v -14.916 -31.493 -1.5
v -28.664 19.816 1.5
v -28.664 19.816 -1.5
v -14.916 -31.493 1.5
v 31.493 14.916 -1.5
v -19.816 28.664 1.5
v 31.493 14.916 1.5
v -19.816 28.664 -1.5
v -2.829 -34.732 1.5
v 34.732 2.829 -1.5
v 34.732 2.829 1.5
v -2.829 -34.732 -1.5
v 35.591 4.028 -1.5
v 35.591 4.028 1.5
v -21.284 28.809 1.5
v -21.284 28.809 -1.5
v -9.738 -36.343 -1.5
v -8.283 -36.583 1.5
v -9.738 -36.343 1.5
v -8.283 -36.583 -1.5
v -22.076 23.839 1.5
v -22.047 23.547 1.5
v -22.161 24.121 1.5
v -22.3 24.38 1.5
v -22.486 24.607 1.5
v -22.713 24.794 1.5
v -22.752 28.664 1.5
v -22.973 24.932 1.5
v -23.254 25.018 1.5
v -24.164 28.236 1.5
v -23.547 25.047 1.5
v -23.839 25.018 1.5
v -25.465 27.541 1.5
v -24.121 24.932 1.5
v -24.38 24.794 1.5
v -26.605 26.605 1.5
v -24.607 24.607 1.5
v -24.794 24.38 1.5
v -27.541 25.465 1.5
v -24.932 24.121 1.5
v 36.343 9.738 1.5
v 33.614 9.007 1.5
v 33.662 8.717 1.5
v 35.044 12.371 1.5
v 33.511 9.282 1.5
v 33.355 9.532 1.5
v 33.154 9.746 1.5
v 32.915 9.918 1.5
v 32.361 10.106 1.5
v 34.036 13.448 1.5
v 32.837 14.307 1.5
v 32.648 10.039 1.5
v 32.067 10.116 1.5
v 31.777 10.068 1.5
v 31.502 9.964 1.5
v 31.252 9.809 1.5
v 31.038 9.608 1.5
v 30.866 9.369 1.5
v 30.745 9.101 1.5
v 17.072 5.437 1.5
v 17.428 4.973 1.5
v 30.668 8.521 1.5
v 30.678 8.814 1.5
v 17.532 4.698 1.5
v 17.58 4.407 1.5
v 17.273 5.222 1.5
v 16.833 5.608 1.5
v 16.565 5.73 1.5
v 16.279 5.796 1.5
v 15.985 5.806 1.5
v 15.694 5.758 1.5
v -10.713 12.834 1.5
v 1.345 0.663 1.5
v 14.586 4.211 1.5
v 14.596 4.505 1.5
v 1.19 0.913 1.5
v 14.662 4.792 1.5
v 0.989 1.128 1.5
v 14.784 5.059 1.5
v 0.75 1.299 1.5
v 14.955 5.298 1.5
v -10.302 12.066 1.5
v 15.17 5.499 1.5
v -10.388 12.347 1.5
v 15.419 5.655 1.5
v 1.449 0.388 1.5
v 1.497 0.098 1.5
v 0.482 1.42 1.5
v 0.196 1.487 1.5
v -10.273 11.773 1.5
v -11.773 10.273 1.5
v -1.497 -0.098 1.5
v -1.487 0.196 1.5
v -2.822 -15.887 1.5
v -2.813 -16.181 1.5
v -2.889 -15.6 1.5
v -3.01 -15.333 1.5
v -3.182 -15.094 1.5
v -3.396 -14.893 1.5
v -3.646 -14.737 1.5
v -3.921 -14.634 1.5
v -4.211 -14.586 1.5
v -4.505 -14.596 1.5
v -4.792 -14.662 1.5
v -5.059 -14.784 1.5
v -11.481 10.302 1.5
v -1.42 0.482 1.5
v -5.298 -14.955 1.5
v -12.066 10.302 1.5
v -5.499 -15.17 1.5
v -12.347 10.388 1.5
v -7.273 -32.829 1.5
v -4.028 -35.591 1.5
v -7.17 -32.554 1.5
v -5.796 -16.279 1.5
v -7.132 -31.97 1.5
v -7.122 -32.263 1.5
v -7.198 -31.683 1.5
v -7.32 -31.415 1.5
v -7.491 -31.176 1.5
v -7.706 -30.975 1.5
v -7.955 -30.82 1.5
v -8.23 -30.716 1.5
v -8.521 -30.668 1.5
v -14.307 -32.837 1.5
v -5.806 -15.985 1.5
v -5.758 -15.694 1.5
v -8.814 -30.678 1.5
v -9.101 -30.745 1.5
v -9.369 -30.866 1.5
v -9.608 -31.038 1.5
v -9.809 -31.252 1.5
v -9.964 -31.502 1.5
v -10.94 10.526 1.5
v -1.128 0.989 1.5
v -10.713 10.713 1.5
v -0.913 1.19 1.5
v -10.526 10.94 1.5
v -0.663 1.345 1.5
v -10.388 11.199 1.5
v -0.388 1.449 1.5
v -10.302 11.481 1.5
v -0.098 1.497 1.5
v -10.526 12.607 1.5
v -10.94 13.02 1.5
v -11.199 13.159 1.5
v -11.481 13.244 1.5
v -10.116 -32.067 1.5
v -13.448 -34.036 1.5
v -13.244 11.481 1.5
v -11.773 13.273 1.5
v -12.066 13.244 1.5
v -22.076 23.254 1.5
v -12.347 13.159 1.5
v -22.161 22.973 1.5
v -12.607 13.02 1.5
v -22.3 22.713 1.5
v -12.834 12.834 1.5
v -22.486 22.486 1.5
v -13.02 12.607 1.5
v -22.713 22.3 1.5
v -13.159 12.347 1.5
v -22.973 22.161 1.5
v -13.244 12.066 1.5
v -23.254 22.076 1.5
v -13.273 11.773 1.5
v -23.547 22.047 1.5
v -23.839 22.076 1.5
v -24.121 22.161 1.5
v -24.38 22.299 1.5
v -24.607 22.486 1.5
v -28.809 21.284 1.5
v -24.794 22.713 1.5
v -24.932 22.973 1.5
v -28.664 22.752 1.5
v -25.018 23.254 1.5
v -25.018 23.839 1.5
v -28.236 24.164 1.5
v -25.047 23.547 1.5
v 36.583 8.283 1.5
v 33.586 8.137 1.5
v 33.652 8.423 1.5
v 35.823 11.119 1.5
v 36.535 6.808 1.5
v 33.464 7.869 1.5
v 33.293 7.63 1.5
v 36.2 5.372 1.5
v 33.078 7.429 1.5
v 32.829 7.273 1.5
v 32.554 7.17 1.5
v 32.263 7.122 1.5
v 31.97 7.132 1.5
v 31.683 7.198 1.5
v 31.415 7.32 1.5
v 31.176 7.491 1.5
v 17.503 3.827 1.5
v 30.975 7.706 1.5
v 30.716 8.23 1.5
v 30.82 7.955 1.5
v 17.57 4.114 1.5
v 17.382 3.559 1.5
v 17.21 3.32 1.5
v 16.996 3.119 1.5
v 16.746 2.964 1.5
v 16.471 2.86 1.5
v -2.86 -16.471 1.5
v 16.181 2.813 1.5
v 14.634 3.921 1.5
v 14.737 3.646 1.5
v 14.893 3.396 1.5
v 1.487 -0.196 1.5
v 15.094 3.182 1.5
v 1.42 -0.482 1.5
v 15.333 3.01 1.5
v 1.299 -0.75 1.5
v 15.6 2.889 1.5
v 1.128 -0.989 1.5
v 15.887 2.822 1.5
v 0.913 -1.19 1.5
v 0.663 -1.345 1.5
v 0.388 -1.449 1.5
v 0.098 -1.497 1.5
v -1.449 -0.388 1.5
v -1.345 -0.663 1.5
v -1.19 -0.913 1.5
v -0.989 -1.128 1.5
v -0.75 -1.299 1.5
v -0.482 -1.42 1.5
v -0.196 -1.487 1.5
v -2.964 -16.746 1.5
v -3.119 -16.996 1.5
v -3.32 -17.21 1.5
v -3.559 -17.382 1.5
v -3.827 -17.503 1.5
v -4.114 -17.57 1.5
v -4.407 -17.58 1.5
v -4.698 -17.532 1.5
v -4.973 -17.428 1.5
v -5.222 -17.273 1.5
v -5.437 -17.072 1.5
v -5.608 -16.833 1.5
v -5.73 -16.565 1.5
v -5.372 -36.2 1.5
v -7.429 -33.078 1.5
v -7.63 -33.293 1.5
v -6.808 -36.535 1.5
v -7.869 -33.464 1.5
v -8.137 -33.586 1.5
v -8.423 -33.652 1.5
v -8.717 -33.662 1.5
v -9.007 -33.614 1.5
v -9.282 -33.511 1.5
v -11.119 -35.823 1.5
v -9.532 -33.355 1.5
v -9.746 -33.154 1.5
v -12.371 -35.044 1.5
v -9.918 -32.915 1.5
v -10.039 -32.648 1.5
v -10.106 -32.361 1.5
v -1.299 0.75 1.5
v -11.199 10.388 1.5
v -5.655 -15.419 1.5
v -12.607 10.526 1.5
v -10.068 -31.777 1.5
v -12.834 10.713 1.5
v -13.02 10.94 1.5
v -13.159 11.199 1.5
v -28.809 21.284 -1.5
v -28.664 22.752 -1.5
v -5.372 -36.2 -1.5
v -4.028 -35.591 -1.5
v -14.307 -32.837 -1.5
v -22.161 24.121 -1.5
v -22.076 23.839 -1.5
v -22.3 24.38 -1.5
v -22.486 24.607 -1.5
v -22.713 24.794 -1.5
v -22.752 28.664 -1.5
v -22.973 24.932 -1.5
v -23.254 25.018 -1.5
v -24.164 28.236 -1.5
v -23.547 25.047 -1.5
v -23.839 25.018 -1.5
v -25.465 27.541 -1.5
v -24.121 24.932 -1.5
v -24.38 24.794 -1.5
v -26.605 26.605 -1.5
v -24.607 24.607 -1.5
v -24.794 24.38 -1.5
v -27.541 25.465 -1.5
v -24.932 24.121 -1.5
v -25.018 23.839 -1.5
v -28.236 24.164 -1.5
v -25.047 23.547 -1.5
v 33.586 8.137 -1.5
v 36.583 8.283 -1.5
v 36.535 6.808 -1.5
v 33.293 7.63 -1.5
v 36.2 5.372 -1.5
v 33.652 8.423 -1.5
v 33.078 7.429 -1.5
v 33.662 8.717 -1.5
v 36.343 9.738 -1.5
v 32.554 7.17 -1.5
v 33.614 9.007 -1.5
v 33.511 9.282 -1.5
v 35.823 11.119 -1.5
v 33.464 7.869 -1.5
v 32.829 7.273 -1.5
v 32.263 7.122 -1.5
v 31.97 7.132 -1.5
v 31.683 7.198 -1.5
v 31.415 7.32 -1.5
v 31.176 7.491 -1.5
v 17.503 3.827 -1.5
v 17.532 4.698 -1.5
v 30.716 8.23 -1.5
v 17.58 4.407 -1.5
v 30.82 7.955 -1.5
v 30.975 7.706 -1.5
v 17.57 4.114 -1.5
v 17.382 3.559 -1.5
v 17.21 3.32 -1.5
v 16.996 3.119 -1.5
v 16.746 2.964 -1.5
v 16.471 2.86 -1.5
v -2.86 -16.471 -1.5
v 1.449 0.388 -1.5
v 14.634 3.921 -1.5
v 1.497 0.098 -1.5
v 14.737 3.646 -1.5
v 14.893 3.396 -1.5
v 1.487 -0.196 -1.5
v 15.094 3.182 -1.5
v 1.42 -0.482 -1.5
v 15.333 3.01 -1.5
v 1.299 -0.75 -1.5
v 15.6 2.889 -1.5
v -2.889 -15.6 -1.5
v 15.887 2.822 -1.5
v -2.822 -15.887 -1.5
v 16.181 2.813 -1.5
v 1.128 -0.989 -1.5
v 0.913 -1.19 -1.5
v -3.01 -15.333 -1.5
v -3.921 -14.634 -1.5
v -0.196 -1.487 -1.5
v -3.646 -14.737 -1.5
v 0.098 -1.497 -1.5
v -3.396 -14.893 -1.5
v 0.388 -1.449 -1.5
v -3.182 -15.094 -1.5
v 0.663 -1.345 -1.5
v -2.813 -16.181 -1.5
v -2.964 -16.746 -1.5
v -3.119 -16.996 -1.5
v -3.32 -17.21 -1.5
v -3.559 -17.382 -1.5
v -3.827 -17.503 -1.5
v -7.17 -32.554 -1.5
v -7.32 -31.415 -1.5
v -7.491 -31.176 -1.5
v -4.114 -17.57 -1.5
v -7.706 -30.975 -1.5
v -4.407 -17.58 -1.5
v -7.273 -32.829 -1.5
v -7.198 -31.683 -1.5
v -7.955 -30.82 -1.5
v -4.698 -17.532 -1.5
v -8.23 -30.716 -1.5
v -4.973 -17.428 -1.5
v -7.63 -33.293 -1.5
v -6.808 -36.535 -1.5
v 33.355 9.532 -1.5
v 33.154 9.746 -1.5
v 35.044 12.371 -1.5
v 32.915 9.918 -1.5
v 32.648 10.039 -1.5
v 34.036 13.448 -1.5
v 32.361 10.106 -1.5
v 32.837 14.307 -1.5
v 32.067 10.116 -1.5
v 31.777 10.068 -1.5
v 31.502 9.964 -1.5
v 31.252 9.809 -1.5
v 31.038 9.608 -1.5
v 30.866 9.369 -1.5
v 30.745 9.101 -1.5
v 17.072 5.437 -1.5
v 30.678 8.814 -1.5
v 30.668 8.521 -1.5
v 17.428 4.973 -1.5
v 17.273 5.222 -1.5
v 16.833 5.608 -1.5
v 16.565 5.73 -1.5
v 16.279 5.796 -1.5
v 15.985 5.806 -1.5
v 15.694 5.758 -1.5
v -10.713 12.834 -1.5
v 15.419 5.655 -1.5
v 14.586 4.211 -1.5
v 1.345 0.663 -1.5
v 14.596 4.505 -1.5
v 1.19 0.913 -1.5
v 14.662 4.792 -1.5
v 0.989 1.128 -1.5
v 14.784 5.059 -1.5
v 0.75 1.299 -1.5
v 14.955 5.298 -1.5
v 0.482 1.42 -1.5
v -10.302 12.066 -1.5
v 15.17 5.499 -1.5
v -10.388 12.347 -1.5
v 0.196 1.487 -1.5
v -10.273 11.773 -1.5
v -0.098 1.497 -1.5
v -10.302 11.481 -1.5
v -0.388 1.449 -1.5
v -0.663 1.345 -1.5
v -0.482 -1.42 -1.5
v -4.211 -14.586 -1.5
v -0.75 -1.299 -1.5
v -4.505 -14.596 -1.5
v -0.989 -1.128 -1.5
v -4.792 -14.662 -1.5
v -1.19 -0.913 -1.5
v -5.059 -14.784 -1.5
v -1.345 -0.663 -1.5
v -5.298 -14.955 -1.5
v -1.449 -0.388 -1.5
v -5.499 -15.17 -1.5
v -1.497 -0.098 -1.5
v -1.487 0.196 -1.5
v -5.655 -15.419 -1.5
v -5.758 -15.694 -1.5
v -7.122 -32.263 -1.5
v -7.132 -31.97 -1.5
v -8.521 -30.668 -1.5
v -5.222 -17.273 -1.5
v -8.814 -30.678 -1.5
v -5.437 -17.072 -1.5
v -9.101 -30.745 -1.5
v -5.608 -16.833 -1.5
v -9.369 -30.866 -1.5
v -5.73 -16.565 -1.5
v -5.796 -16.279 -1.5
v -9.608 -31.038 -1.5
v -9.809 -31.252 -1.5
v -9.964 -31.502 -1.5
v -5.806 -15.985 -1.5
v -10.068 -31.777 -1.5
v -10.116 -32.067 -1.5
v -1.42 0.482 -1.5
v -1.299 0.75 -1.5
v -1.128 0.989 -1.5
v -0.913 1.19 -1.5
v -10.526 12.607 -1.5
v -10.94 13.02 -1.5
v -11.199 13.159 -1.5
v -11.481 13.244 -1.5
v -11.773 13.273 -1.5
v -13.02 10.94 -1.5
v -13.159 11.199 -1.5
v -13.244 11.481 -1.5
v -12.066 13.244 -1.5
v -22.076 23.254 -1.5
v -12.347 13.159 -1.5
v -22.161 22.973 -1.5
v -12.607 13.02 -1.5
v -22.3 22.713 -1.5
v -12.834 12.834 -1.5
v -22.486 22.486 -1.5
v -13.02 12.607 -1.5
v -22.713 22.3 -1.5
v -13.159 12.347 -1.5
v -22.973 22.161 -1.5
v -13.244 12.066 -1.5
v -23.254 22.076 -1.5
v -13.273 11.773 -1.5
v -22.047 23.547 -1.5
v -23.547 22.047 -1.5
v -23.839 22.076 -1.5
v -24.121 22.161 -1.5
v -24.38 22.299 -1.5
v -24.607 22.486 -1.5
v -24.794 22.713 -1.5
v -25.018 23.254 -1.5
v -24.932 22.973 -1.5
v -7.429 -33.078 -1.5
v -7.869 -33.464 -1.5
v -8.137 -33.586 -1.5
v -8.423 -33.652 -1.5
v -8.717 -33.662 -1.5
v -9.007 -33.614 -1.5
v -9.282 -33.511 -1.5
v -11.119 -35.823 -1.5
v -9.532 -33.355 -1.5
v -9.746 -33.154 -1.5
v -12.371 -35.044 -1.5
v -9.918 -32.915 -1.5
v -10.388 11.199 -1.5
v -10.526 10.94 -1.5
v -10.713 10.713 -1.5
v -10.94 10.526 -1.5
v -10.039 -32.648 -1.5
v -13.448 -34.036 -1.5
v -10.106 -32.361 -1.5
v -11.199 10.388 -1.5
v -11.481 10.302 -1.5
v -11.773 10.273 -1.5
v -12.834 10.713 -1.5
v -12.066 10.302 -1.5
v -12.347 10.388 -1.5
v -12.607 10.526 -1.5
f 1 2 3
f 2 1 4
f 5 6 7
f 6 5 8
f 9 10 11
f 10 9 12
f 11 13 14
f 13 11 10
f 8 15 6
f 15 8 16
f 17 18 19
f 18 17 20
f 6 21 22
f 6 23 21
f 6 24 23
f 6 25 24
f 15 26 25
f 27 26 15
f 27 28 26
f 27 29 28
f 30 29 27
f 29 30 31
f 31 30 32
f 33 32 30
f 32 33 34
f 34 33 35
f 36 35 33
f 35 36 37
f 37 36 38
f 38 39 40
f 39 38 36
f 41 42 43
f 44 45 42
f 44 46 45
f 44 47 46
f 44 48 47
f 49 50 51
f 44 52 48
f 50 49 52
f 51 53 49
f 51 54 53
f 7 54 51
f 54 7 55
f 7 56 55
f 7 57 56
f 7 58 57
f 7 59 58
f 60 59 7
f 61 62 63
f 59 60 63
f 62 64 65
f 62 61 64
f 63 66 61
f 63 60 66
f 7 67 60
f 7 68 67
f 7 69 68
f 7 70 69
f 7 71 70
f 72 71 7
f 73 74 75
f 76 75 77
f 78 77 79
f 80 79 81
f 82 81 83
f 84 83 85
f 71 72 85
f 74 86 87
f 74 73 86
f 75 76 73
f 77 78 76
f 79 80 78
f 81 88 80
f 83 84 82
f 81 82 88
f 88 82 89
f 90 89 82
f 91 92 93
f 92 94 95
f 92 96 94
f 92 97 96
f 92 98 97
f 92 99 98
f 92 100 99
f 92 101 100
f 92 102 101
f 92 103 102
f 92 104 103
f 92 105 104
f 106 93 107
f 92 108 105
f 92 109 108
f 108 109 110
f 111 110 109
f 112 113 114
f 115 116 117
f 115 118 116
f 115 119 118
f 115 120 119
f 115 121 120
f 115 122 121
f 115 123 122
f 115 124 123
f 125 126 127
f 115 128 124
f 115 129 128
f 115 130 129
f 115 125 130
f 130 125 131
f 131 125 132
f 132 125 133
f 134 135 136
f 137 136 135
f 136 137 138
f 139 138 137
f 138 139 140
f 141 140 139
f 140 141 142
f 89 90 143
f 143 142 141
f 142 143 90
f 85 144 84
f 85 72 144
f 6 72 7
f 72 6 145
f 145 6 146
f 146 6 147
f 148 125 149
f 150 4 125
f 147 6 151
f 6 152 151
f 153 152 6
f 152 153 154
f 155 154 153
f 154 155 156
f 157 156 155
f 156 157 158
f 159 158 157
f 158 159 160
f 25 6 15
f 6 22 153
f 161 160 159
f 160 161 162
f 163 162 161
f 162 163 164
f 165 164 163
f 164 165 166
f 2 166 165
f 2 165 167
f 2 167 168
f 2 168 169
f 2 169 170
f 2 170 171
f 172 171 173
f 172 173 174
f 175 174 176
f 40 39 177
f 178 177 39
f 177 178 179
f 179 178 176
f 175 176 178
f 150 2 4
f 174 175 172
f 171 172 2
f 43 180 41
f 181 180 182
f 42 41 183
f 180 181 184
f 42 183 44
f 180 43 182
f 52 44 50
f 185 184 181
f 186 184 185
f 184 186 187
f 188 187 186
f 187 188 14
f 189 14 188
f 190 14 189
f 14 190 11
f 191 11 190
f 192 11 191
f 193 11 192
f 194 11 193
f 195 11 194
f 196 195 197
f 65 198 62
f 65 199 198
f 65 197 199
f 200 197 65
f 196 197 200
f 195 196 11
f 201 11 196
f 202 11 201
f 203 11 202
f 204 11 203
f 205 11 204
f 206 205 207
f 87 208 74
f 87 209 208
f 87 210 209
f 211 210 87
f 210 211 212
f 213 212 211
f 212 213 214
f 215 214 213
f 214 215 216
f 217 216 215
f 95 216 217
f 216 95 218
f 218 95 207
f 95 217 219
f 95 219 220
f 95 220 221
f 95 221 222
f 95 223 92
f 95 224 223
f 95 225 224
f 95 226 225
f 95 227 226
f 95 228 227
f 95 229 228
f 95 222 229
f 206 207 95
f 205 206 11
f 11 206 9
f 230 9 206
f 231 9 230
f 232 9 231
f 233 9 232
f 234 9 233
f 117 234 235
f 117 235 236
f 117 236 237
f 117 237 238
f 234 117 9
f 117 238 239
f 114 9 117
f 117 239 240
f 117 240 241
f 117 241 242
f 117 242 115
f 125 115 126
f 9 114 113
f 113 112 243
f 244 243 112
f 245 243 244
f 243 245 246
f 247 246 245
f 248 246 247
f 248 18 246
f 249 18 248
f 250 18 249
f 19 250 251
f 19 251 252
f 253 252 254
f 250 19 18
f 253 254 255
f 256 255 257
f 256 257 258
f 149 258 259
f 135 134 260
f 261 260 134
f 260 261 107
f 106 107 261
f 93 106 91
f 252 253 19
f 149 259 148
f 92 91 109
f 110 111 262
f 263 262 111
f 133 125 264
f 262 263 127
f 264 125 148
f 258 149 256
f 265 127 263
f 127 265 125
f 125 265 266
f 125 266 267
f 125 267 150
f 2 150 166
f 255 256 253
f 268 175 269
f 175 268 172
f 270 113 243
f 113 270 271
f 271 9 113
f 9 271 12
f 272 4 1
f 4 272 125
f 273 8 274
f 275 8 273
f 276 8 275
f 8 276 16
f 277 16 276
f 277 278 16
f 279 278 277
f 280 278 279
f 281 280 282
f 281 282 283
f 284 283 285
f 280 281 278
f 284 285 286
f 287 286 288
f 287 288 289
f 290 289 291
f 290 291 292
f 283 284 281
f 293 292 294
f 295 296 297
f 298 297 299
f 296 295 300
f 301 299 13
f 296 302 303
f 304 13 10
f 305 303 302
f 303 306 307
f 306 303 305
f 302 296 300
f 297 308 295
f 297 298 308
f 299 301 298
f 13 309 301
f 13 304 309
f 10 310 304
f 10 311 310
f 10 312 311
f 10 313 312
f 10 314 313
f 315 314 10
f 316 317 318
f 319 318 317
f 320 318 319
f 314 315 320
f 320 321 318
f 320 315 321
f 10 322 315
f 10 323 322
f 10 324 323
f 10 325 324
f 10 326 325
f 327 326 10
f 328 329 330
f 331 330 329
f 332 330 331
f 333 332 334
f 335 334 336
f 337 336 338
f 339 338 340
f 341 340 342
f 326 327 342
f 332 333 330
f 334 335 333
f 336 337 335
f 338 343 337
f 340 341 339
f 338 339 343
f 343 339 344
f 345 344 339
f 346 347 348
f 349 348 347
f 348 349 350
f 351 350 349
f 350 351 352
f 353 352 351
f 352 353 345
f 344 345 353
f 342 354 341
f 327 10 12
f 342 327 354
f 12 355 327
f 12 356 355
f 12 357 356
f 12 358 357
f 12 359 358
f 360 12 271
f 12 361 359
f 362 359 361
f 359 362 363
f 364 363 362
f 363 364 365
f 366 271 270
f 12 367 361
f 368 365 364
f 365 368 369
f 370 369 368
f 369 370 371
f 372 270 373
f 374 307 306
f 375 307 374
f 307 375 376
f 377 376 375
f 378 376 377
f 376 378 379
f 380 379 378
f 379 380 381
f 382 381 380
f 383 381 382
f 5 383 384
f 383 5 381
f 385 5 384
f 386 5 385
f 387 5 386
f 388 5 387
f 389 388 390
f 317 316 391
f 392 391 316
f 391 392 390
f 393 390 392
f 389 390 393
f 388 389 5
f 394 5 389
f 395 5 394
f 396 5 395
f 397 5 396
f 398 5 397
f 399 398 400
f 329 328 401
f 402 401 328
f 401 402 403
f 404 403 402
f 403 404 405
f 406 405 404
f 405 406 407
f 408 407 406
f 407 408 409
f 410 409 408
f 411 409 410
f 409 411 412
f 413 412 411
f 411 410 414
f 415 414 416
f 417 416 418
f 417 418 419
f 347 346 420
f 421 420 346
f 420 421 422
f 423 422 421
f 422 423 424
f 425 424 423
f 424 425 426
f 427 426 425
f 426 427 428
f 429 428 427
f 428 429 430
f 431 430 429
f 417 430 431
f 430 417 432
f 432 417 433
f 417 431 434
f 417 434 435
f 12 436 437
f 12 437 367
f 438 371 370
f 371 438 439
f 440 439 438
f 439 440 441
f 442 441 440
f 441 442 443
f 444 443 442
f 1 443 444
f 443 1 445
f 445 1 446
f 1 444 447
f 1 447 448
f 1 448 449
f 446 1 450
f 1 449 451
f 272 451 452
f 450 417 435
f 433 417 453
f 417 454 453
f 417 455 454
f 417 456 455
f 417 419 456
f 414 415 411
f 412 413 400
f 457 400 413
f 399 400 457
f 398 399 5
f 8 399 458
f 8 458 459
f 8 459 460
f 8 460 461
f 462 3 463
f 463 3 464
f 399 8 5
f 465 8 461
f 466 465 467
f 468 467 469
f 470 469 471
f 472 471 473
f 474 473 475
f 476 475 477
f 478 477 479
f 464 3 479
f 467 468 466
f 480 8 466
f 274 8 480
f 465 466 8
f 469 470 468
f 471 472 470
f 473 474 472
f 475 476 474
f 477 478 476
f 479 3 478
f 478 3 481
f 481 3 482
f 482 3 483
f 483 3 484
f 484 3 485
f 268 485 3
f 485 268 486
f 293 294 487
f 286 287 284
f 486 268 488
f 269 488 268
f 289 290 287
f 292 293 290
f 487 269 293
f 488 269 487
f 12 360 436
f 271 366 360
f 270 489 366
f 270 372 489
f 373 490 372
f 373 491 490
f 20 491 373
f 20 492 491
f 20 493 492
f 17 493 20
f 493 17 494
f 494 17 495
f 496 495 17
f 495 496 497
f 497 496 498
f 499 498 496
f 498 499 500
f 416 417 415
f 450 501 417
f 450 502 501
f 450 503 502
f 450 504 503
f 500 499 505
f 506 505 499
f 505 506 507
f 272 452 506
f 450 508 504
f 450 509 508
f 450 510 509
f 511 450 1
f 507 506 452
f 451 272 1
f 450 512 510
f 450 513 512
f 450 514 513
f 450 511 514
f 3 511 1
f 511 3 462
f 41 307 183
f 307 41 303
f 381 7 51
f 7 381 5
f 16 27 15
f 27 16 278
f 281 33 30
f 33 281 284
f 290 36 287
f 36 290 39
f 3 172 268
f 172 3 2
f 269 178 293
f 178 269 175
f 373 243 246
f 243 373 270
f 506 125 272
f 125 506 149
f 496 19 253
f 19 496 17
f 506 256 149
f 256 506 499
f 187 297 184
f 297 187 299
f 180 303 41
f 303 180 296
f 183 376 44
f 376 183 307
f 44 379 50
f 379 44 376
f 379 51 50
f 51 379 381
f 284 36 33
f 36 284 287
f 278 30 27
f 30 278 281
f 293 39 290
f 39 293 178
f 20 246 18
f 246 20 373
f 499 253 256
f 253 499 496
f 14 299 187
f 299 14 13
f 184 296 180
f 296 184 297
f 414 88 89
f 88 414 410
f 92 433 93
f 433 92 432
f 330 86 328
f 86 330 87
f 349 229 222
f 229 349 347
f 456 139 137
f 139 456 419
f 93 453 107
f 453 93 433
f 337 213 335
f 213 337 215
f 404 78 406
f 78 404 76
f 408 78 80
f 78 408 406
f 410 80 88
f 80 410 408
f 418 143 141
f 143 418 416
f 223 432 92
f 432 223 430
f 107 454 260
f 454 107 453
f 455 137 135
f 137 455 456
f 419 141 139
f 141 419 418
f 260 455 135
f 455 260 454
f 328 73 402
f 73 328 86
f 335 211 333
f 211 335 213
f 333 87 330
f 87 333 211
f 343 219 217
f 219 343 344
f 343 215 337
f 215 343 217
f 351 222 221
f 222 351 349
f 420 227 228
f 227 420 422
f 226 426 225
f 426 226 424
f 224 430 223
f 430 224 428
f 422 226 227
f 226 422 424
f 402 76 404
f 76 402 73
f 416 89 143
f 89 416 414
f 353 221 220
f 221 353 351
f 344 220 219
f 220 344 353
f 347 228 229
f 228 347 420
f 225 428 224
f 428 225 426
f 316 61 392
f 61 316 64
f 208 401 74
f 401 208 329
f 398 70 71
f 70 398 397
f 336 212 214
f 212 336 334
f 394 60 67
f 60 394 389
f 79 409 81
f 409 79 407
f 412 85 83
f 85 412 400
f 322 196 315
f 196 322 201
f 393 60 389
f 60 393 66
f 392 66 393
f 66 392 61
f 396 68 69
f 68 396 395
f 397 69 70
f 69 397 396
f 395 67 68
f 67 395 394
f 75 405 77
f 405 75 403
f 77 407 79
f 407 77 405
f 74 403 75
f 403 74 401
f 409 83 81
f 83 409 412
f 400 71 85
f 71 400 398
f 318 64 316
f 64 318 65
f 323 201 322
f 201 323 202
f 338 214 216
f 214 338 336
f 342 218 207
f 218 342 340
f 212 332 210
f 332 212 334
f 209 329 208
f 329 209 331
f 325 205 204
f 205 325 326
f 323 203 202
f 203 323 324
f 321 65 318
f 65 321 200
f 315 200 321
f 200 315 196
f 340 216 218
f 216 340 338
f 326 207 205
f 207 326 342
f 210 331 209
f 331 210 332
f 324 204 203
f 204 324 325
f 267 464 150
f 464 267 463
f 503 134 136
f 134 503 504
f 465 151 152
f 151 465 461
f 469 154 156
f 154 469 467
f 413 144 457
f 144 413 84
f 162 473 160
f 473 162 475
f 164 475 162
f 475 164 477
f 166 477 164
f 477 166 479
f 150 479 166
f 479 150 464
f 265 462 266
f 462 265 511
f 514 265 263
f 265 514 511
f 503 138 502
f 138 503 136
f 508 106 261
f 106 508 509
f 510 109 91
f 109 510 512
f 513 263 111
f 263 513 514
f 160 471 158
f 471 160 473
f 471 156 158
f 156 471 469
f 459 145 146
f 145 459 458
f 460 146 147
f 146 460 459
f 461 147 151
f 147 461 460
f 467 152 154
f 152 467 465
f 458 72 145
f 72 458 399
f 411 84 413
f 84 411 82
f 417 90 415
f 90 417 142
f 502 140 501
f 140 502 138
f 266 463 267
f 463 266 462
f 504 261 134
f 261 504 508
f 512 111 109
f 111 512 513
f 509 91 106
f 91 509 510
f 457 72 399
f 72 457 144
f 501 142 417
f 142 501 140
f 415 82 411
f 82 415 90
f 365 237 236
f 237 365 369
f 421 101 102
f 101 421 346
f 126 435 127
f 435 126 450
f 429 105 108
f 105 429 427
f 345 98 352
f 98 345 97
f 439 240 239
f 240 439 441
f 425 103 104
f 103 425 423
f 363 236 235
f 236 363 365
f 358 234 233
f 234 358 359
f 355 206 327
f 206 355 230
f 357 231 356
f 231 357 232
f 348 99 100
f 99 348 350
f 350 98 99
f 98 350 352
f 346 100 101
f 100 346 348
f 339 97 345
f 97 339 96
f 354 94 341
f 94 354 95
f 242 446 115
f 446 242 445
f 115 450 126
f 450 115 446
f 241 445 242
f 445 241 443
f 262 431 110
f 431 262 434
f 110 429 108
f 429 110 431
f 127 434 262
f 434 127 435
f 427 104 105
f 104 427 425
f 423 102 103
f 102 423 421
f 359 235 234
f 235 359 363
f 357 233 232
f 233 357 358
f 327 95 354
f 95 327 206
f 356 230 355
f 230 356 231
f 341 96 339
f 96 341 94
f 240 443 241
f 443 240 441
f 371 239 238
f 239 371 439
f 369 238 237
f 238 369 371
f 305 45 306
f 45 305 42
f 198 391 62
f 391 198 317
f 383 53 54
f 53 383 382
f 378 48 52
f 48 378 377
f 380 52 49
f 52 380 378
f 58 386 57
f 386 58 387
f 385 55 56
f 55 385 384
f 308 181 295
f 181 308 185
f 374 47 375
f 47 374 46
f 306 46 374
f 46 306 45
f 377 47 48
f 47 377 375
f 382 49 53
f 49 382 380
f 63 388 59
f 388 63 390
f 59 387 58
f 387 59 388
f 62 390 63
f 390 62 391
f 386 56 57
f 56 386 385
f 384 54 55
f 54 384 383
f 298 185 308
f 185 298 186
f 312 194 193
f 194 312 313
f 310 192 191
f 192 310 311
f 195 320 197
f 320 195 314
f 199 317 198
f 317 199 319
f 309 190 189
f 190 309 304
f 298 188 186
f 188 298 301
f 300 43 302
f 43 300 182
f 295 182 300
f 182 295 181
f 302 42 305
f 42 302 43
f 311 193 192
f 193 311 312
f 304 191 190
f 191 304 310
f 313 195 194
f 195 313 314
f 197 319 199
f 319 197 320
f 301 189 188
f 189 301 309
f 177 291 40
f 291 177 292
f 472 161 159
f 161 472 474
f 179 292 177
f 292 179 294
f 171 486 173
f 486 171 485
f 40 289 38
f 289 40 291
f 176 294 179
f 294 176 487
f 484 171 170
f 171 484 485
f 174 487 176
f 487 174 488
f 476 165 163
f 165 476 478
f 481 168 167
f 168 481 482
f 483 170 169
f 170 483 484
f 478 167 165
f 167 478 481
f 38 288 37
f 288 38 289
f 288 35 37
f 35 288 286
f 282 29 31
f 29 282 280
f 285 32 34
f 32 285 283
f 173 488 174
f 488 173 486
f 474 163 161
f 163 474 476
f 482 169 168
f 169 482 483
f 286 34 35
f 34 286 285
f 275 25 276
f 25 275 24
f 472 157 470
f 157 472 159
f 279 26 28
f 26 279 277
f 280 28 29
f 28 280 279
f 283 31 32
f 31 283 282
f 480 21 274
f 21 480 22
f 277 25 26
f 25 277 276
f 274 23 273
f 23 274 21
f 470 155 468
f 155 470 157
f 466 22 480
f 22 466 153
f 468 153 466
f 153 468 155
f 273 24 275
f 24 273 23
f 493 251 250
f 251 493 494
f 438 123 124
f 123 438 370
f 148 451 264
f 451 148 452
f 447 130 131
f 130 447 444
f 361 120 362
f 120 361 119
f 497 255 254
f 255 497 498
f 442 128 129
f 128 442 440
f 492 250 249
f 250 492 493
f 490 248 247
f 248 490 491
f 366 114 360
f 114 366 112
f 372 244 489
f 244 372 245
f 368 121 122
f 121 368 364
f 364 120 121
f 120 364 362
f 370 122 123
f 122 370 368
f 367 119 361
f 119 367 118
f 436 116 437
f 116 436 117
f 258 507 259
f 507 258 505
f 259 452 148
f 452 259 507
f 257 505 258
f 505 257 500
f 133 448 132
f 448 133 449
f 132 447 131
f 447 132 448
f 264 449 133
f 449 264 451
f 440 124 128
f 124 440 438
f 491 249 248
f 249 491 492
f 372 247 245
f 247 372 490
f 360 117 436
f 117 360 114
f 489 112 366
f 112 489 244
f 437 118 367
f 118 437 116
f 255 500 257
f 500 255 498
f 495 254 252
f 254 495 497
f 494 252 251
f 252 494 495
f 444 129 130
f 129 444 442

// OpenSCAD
union() // SharpSCAD generated scene: Kerr 8oz
{
  rotate( a= [ 0, 0, 15 ] )
  {
    { // module: pf_jig
      difference()
      {
        hull()
        {
          translate( v= [ 30.1, 0, 0 ] )
          {
            cylinder( r= 7.525, center= true, $fn= 32, h= 3 );
          }
          rotate( a= [ 0, 0, 120 ] )
          {
            translate( v= [ 30.1, 0, 0 ] )
            {
              cylinder( r= 7.525, center= true, $fn= 32, h= 3 );
            }
          }
          rotate( a= [ 0, 0, -120 ] )
          {
            translate( v= [ 30.1, 0, 0 ] )
            {
              cylinder( r= 7.525, center= true, $fn= 32, h= 3 );
            }
          }
        }
        cylinder( r= 1.5, center= true, $fn= 32, h= 4 );
        translate( v= [ 16.65, 0, 0 ] )
        {
          cylinder( r= 1.5, center= true, $fn= 32, h= 4 );
        }
        rotate( a= [ 0, 0, 120 ] )
        {
          translate( v= [ 16.65, 0, 0 ] )
          {
            cylinder( r= 1.5, center= true, $fn= 32, h= 4 );
          }
        }
        rotate( a= [ 0, 0, -120 ] )
        {
          translate( v= [ 16.65, 0, 0 ] )
          {
            cylinder( r= 1.5, center= true, $fn= 32, h= 4 );
          }
        }
        translate( v= [ 33.3, 0, 0 ] )
        {
          cylinder( r= 1.5, center= true, $fn= 32, h= 4 );
        }
        rotate( a= [ 0, 0, 120 ] )
        {
          translate( v= [ 33.3, 0, 0 ] )
          {
            cylinder( r= 1.5, center= true, $fn= 32, h= 4 );
          }
        }
        rotate( a= [ 0, 0, -120 ] )
        {
          translate( v= [ 33.3, 0, 0 ] )
          {
            cylinder( r= 1.5, center= true, $fn= 32, h= 4 );
          }
        }
      }
    }
  }
}
